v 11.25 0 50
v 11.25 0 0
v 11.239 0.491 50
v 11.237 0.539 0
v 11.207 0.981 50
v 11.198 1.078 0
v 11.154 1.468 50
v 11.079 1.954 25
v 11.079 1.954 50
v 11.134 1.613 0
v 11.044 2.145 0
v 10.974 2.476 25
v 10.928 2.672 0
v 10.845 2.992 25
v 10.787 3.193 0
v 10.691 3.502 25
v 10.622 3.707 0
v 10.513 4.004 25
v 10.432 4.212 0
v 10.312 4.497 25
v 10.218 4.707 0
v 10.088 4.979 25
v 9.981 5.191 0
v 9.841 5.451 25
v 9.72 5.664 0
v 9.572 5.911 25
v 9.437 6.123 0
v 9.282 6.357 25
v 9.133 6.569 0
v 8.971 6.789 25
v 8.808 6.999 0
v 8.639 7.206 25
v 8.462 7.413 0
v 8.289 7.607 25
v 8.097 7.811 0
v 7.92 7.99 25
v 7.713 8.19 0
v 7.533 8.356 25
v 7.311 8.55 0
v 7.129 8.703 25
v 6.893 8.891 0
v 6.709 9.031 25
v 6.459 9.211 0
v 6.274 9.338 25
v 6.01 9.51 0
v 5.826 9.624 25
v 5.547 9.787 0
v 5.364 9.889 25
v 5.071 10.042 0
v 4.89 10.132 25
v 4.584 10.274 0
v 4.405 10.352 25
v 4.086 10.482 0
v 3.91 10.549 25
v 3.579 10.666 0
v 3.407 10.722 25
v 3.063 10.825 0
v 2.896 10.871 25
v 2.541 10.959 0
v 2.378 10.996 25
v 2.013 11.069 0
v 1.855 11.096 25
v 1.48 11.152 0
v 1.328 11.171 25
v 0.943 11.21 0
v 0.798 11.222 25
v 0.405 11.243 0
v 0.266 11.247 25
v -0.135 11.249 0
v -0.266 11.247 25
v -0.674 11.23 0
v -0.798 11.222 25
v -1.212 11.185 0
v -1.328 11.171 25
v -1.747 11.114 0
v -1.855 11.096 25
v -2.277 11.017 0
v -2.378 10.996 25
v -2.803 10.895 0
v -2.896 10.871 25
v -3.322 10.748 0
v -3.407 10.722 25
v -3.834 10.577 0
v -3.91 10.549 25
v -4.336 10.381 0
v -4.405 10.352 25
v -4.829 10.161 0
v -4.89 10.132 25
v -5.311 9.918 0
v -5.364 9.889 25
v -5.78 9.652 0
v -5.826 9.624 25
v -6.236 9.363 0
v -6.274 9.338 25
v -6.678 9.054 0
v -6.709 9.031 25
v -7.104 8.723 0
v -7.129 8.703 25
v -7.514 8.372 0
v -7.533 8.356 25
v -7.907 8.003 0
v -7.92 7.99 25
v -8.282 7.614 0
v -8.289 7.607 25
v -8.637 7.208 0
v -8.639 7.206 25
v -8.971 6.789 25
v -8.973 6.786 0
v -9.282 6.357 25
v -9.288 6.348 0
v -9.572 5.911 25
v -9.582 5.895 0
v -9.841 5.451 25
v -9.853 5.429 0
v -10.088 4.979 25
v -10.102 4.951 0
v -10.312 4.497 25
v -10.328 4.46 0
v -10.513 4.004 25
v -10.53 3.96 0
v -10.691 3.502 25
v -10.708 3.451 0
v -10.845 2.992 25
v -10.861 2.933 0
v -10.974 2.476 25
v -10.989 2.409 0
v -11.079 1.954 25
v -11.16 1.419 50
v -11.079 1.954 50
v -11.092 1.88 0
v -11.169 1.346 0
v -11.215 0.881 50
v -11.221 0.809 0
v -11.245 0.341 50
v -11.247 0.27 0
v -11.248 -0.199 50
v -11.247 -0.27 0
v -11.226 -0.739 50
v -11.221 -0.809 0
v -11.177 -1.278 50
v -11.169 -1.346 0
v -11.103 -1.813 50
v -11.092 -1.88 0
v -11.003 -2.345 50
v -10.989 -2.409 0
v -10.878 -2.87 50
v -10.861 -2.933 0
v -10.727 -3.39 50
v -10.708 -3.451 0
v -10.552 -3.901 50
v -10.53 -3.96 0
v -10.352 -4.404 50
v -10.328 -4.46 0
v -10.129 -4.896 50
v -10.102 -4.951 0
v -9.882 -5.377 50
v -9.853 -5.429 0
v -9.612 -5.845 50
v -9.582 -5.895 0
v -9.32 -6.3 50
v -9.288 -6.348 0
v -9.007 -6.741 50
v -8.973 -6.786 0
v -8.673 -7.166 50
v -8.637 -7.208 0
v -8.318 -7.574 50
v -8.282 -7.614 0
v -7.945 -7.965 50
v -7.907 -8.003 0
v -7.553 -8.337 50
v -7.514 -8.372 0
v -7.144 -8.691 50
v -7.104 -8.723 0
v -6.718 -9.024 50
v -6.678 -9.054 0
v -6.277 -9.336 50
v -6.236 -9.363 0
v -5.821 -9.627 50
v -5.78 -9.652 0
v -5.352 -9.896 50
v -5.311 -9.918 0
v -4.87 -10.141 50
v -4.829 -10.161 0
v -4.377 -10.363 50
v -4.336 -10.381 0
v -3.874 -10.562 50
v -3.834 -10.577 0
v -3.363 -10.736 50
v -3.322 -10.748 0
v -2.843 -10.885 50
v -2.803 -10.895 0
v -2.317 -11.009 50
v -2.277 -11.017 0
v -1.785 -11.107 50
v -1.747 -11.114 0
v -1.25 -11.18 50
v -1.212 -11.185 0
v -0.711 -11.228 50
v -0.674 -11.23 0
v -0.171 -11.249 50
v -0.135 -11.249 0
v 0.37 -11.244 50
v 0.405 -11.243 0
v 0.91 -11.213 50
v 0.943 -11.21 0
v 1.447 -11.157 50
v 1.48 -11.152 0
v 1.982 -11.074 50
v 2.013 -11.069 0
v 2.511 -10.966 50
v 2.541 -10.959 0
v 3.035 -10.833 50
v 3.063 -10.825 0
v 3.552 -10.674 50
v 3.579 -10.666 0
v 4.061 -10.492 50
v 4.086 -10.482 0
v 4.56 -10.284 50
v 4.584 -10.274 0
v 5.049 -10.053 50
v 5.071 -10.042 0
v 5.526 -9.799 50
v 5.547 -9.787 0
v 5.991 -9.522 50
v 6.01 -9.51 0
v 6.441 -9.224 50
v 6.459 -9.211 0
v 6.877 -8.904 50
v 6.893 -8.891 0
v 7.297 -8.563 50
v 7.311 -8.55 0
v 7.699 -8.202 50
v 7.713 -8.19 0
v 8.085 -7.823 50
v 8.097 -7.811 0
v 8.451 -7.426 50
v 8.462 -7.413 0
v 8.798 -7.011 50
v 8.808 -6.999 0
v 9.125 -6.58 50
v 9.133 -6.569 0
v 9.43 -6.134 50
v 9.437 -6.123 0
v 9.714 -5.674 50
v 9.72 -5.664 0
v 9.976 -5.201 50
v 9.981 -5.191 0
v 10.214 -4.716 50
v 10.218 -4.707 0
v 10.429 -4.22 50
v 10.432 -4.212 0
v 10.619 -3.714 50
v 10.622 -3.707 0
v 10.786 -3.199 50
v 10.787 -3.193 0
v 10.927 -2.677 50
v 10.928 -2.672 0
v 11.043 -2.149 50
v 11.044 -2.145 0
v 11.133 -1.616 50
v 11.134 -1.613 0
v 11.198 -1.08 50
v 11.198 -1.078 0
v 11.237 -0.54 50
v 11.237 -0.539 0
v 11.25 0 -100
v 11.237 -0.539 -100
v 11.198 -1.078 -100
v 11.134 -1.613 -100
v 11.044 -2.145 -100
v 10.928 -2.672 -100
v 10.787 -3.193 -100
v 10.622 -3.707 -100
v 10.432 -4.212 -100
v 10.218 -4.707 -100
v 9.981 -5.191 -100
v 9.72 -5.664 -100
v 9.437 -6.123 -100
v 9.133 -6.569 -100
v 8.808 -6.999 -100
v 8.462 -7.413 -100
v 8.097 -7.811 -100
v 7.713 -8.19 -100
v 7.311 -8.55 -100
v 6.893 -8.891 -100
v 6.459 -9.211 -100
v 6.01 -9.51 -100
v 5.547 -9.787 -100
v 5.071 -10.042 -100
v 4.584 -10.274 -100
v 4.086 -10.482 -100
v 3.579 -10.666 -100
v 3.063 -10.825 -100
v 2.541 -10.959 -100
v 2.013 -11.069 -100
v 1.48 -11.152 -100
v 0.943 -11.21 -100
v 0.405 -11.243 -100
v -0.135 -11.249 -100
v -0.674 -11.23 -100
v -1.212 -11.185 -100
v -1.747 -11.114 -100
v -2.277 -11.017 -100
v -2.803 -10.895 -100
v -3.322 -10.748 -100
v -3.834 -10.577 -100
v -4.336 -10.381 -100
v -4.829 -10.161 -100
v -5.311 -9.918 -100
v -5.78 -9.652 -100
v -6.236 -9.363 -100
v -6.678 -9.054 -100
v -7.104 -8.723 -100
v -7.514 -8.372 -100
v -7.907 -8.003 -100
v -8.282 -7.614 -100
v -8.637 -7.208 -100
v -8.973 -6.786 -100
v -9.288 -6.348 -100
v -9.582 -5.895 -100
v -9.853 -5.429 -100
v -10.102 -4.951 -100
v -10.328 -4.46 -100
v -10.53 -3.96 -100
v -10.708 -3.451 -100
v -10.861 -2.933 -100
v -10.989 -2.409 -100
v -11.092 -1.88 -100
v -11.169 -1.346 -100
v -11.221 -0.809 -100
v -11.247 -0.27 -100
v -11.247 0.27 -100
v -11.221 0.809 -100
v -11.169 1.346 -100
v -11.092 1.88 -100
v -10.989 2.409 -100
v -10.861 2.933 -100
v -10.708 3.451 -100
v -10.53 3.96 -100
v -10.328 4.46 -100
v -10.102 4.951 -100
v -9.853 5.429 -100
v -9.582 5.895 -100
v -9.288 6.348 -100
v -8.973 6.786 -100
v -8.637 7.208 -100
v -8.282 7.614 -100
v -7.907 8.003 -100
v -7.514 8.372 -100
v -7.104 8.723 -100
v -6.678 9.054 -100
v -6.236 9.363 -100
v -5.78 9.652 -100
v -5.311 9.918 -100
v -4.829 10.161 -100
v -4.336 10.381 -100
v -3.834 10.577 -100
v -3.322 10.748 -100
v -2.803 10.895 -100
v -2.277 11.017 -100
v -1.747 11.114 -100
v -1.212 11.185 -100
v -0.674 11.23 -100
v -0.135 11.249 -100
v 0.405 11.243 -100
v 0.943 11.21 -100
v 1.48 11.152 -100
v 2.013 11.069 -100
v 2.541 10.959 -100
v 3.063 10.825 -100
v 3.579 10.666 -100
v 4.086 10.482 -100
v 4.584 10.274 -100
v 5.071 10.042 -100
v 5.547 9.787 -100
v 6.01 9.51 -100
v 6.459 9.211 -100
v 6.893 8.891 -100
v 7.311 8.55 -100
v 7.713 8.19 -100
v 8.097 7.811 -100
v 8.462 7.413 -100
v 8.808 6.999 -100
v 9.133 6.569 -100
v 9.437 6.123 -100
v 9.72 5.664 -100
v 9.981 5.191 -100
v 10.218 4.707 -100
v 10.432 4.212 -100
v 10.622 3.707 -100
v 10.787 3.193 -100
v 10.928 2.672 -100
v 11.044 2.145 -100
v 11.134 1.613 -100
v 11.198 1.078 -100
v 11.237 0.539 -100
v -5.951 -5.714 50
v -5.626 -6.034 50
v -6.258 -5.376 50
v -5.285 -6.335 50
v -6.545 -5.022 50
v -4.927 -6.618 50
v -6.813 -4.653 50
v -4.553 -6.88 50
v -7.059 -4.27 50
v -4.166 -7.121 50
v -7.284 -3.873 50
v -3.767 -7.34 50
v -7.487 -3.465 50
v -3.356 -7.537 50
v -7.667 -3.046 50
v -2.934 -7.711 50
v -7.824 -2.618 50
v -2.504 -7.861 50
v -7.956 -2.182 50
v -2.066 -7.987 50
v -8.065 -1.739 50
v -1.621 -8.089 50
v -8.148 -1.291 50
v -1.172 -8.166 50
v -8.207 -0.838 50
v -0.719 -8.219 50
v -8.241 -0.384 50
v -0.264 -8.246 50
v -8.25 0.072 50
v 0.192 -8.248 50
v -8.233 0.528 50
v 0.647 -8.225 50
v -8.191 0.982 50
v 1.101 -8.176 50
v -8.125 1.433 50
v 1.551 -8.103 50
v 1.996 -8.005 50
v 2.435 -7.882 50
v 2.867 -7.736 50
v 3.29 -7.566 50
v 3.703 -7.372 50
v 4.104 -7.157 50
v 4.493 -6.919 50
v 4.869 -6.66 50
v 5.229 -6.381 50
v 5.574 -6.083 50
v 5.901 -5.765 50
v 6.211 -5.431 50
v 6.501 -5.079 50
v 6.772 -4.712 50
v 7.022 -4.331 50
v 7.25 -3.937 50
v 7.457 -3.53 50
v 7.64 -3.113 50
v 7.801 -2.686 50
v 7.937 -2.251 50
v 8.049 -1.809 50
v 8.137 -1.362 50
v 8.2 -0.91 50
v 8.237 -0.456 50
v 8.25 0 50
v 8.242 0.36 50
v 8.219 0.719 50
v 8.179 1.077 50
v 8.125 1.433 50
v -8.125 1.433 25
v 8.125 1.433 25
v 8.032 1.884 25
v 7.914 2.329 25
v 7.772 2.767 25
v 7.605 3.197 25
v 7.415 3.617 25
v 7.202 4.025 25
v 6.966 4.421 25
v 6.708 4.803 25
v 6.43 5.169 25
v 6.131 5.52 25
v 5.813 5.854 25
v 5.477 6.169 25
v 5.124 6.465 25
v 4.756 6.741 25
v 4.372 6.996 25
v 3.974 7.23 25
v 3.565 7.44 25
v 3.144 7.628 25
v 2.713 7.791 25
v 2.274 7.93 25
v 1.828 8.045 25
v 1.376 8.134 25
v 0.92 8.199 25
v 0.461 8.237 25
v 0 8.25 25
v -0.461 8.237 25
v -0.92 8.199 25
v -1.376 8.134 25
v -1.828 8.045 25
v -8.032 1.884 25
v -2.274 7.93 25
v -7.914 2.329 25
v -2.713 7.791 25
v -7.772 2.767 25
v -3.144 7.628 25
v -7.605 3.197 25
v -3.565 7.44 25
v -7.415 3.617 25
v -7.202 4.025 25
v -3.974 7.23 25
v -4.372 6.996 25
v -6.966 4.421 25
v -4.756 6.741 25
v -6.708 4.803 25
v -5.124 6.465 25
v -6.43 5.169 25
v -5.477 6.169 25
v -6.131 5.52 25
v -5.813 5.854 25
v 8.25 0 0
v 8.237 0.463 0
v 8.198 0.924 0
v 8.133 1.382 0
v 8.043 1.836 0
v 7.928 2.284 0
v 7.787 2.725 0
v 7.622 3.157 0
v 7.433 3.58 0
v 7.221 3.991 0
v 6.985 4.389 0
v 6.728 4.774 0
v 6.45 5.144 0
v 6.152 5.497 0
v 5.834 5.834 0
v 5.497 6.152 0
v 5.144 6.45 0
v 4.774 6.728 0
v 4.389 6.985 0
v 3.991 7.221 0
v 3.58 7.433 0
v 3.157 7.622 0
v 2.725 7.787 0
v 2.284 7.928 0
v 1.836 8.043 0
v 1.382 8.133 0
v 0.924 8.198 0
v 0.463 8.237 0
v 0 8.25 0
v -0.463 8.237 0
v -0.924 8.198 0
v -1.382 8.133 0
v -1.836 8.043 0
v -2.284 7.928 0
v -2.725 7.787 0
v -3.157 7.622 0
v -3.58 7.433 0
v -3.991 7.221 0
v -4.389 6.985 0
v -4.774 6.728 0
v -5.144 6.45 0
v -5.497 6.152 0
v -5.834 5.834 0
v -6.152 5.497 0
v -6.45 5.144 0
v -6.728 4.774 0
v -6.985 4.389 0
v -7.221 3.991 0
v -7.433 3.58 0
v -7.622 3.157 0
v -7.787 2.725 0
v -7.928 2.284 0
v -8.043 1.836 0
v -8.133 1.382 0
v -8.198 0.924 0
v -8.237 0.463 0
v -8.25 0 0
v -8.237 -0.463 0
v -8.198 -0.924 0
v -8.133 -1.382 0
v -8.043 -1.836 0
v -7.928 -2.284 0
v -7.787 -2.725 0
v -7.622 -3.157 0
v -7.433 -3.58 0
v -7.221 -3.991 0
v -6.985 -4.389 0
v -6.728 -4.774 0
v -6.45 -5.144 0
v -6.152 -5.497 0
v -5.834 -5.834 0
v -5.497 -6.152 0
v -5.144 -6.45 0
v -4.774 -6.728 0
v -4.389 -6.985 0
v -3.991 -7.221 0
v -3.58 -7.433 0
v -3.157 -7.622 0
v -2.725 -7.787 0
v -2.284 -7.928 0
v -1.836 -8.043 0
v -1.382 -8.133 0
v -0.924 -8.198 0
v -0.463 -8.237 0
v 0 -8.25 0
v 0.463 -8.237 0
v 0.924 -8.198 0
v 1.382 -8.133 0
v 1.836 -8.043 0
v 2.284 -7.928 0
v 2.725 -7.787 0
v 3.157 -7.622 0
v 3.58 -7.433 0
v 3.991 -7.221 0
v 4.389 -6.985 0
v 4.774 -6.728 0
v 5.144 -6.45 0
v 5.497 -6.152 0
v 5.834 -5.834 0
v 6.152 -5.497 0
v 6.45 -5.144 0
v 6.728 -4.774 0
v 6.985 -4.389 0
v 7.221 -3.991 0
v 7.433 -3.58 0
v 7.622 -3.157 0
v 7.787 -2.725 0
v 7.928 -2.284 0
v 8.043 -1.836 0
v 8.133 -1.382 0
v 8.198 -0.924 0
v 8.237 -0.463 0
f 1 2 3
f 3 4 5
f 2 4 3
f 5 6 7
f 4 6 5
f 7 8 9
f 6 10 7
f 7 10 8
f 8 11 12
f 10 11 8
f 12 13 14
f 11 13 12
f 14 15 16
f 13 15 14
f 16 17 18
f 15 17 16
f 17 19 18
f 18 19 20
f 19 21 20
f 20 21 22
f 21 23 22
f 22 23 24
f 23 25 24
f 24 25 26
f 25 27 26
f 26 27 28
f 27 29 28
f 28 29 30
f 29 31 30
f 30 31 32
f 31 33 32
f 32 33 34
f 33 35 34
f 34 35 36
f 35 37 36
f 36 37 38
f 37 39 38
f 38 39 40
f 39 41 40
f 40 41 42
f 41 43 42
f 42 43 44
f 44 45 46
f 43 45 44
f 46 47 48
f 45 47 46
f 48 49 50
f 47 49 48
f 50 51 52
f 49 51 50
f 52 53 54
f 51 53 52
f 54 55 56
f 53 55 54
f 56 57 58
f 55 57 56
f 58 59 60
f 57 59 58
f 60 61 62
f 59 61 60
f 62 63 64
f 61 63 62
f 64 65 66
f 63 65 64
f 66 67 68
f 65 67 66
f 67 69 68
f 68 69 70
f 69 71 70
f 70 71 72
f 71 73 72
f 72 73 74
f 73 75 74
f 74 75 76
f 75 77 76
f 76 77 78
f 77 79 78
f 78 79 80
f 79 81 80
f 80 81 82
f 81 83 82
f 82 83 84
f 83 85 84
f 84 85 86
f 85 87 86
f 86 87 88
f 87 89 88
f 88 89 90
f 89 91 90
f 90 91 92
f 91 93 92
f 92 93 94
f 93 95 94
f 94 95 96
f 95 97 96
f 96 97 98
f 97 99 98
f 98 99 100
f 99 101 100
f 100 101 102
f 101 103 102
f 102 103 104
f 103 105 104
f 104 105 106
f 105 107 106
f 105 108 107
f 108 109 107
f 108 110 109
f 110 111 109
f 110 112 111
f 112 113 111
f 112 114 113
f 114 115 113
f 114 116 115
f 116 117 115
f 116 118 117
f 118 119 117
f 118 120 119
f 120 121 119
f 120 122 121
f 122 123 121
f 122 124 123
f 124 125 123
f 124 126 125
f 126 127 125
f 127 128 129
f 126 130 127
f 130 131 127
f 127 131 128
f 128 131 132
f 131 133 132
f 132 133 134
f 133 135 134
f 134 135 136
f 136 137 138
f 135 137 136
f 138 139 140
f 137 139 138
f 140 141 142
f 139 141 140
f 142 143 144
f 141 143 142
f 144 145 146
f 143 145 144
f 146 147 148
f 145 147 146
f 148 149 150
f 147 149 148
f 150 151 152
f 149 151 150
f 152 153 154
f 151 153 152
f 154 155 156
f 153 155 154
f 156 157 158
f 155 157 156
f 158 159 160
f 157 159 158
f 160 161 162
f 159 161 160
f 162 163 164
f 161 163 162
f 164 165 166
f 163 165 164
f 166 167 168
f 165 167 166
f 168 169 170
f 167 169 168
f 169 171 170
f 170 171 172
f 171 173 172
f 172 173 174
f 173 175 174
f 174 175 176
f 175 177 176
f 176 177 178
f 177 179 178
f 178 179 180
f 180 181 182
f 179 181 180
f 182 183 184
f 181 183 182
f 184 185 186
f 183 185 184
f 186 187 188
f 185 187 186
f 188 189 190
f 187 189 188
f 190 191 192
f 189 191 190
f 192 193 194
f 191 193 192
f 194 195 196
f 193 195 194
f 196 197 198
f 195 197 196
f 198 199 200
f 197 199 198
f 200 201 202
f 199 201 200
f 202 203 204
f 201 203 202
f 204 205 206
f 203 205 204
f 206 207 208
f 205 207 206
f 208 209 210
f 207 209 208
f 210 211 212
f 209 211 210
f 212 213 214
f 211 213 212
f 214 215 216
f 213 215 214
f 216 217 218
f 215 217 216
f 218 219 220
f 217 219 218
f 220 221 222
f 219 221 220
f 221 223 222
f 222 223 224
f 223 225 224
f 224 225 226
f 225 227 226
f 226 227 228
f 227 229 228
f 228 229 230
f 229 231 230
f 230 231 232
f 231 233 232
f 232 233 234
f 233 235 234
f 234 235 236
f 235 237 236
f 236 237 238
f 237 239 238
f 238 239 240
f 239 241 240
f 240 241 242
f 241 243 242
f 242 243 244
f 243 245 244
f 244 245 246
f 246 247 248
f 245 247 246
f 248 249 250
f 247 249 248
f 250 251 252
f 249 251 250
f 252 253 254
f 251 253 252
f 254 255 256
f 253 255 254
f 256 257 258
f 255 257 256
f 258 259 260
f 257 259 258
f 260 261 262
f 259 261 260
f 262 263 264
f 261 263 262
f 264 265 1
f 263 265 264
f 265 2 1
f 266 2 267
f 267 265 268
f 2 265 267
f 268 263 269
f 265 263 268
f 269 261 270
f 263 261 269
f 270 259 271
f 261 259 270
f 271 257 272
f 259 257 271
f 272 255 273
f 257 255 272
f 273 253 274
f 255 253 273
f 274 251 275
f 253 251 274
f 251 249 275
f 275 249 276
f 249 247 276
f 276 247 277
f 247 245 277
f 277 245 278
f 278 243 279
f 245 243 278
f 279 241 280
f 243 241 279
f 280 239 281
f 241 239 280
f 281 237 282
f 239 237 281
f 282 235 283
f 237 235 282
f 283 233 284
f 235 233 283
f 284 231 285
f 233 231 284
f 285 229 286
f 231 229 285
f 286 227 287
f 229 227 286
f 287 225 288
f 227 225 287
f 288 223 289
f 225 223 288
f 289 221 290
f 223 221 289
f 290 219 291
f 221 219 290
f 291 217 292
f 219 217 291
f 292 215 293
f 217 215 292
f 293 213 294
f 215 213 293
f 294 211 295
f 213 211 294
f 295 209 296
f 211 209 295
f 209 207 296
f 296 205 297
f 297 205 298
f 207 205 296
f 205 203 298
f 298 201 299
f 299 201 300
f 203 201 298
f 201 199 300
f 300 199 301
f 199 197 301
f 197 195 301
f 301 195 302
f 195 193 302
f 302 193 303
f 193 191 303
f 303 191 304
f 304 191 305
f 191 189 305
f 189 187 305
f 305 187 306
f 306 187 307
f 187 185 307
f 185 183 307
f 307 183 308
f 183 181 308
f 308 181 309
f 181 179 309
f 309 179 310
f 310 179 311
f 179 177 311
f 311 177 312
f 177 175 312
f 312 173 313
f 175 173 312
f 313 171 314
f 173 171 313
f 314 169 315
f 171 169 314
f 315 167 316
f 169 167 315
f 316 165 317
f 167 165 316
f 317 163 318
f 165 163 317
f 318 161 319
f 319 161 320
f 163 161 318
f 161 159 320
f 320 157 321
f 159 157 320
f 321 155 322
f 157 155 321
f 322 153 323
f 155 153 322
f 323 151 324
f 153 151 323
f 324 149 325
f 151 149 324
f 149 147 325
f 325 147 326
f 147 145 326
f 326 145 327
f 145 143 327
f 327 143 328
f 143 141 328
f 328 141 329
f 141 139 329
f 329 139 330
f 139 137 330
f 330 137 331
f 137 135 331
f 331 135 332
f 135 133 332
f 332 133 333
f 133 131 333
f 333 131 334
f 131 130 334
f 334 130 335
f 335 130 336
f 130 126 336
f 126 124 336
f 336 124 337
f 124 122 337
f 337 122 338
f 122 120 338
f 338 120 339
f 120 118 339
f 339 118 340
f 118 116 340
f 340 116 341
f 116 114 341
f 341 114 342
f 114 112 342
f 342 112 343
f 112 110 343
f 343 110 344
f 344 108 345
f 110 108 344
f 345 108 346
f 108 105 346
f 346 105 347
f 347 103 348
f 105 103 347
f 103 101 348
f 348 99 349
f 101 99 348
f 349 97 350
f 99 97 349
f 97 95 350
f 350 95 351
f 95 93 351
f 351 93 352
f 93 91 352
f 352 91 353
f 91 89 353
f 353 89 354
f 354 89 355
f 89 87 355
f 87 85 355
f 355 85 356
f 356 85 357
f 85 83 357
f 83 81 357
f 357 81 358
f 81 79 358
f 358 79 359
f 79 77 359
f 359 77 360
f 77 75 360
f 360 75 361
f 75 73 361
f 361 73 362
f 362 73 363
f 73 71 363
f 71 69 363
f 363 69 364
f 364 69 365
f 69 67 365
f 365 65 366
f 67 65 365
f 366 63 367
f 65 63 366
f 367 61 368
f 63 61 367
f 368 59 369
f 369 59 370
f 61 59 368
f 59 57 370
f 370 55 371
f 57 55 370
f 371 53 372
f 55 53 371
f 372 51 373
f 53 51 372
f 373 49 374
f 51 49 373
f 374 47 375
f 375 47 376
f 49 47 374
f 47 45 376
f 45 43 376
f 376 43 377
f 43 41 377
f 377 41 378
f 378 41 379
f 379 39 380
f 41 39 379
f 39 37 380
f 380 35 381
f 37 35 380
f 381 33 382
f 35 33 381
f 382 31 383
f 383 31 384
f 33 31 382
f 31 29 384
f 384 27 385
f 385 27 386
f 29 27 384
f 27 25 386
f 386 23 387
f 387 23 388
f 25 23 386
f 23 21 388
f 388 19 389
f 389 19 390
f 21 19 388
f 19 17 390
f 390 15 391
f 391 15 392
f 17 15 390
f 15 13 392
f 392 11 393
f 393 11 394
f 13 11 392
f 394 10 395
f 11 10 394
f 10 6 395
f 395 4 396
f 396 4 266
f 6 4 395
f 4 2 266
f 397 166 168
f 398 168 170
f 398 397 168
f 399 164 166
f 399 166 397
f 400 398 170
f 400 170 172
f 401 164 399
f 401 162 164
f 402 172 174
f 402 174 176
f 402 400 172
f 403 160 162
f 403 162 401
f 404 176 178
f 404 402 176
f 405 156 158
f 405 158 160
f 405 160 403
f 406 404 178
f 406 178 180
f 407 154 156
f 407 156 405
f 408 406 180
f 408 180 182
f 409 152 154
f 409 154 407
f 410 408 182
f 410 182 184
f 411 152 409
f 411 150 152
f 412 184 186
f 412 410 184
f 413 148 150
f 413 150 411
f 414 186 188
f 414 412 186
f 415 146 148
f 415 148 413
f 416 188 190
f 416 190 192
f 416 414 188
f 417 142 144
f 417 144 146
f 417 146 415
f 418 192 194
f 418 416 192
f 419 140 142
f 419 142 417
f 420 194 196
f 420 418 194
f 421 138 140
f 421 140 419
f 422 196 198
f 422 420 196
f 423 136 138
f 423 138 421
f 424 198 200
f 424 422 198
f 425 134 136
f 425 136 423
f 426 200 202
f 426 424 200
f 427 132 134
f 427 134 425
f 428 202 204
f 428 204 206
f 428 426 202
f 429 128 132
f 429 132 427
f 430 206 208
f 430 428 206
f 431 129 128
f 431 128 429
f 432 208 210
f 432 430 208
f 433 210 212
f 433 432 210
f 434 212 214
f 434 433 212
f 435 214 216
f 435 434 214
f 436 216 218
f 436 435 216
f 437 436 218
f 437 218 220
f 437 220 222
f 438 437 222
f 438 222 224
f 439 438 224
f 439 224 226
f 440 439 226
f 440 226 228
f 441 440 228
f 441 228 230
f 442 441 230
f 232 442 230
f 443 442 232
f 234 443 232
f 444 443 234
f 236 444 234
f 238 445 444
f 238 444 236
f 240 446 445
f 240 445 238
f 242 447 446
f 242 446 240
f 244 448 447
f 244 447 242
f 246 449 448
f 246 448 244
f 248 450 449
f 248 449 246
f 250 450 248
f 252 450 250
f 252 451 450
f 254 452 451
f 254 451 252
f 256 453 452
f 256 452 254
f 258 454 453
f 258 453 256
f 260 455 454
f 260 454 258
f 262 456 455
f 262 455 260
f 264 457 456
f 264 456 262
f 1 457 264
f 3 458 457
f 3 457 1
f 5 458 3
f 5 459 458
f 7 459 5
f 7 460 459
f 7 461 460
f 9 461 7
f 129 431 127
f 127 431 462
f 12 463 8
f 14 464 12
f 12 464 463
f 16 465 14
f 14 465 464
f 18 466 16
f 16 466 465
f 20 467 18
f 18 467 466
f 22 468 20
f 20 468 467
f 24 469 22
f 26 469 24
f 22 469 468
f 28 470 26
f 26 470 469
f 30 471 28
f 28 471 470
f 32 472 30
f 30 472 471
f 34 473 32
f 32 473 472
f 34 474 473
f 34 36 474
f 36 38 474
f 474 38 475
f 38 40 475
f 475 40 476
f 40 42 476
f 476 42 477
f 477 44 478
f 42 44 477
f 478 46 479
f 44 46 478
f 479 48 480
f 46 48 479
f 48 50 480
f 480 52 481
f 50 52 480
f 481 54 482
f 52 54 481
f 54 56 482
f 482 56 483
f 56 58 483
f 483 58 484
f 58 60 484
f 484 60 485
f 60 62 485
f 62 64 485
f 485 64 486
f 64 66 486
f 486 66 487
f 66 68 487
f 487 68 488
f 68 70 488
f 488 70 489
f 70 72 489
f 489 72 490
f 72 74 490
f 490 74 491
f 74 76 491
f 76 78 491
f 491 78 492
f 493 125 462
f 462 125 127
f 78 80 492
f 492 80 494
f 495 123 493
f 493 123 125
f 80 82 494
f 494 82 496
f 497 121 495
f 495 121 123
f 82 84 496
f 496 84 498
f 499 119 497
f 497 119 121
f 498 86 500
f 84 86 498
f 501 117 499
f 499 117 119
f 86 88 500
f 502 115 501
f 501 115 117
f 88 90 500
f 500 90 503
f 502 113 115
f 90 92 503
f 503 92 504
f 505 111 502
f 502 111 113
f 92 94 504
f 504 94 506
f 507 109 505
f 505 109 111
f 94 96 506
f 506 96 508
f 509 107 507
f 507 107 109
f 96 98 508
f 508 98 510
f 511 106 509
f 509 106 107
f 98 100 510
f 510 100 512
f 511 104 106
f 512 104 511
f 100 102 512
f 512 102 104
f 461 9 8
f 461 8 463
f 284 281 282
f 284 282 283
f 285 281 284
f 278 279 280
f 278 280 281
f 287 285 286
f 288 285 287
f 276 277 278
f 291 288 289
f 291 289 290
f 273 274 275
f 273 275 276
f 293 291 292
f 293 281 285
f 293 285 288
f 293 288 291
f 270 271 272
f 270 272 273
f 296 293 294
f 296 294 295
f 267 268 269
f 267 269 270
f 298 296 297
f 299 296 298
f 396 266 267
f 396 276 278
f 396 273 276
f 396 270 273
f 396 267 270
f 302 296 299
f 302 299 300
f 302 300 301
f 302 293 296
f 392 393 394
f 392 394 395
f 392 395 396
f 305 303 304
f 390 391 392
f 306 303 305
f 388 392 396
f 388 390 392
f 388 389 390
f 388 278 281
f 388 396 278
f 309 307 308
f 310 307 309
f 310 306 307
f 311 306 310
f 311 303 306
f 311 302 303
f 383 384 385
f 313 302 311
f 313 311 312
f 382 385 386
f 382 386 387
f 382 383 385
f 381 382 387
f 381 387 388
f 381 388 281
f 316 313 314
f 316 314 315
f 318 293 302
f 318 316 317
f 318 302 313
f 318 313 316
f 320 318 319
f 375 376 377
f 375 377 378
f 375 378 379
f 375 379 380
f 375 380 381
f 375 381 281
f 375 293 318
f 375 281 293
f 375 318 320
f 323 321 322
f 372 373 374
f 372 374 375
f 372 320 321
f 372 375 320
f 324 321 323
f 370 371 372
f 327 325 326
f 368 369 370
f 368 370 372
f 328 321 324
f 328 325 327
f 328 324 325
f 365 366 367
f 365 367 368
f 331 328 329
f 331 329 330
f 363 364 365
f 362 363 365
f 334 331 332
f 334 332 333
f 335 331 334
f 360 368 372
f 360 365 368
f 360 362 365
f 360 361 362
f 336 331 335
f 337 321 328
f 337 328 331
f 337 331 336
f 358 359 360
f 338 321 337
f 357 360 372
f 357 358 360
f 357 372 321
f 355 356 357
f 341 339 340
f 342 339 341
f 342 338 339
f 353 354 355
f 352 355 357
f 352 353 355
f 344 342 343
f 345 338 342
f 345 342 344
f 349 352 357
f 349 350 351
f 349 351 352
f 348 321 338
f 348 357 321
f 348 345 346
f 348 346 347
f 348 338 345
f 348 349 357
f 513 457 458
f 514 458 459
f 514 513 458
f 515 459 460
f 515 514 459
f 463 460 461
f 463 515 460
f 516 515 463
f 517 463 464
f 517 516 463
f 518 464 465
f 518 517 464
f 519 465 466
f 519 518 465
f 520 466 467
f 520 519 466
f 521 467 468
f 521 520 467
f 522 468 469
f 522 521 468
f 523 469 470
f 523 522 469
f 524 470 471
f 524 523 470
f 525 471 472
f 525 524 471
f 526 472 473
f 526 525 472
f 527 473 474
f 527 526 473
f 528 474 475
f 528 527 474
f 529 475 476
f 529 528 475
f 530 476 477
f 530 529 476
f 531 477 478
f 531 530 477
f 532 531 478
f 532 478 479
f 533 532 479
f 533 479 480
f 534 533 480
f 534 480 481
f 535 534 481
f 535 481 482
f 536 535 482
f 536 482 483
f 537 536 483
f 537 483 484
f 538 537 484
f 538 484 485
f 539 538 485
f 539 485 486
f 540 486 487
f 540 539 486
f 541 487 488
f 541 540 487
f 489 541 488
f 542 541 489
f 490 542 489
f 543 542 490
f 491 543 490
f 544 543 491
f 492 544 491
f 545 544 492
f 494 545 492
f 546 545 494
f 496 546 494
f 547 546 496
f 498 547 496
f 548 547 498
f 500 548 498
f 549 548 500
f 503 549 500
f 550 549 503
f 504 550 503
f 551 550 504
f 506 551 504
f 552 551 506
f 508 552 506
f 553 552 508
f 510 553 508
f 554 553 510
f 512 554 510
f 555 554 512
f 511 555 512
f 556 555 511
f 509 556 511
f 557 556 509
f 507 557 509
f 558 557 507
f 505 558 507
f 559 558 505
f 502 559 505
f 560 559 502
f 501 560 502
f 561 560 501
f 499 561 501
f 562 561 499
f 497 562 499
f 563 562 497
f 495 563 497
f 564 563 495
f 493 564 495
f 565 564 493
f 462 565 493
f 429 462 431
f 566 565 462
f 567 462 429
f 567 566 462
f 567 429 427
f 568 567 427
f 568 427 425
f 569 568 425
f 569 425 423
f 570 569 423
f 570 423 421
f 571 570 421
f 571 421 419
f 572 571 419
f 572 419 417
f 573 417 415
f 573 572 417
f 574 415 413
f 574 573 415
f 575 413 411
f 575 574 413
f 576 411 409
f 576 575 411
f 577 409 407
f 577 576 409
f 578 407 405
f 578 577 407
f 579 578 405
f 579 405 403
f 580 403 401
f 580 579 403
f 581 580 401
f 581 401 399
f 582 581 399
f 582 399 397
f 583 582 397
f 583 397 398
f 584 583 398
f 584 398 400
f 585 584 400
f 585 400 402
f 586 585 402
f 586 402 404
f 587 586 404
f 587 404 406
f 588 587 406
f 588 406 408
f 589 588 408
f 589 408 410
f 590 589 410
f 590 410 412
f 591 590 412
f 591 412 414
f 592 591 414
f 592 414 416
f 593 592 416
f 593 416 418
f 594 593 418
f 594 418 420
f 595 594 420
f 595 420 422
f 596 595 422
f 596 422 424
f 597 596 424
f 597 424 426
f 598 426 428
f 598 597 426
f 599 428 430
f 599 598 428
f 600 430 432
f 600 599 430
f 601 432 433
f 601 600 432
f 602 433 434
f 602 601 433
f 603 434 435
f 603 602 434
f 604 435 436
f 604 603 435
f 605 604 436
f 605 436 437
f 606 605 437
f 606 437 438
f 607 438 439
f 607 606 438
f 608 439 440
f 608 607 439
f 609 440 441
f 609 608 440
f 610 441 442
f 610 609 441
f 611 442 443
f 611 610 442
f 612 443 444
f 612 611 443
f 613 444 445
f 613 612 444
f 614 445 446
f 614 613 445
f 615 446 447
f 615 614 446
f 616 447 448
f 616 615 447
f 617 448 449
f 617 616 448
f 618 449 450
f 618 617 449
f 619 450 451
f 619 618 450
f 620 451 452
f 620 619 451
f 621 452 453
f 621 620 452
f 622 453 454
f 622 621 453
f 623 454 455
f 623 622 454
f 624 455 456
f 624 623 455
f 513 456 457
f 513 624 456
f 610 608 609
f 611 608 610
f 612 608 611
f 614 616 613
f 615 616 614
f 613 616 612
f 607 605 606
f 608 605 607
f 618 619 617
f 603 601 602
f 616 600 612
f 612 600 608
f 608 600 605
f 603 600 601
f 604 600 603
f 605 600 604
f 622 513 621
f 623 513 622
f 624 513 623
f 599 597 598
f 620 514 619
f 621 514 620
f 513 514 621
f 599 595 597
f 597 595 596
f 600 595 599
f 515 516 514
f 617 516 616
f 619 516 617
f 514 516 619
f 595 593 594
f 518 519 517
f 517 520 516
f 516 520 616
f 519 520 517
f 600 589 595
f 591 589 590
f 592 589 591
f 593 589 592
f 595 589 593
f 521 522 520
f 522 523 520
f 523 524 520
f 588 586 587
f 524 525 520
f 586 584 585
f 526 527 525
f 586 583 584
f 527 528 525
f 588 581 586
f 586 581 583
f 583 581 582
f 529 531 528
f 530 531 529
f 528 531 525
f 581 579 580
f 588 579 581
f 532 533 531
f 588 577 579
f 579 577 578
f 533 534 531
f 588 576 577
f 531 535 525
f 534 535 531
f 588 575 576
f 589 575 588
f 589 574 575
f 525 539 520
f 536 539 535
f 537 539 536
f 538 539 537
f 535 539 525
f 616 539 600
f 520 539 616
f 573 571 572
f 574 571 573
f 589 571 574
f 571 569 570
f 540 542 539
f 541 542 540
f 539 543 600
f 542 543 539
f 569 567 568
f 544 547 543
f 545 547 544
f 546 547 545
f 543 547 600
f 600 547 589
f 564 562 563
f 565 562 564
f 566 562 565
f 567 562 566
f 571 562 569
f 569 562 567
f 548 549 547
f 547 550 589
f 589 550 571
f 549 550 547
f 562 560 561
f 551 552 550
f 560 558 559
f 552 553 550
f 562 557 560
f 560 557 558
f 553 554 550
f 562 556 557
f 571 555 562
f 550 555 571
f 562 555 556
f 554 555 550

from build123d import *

# Parameters (mm, degrees)
SKETCH_R     = 11.25
SKETCH_R_2   = 8.25
PAD_DEPTH    = 50
SKETCH001_R  = 11.25
PAD001_DEPTH = 100
POCKET_DEPTH = 25


with BuildPart() as part:
    # Sketch → Pad (new body)
    with BuildSketch(Plane.XY):
        Circle(SKETCH_R)
        Circle(SKETCH_R_2, mode=Mode.SUBTRACT)
    extrude(amount=PAD_DEPTH)

    # Sketch001 (on Face3 of Pad) → Pad001 (join)
    with BuildSketch(Plane(origin=(0, 0, 0), x_dir=(1, 0, 0), z_dir=(0, 0, -1))):
        Circle(SKETCH001_R)
    extrude(amount=PAD001_DEPTH)

    # Sketch002 (on Face3 of Pad001) → Pocket (cut)
    with BuildSketch(Plane.XY.offset(50)):
        with BuildLine():
            ThreePointArc((8.124664, 1.432597), (0, 8.25), (-8.124664, 1.432597))
            Line((-11.079087, 1.953542), (-8.124664, 1.432597))
            ThreePointArc((11.079087, 1.953542), (0, 11.25), (-11.079087, 1.953542))
            Line((11.079087, 1.953542), (8.124664, 1.432597))
        make_face()
    extrude(amount=-POCKET_DEPTH, mode=Mode.SUBTRACT)


solid = part.part
